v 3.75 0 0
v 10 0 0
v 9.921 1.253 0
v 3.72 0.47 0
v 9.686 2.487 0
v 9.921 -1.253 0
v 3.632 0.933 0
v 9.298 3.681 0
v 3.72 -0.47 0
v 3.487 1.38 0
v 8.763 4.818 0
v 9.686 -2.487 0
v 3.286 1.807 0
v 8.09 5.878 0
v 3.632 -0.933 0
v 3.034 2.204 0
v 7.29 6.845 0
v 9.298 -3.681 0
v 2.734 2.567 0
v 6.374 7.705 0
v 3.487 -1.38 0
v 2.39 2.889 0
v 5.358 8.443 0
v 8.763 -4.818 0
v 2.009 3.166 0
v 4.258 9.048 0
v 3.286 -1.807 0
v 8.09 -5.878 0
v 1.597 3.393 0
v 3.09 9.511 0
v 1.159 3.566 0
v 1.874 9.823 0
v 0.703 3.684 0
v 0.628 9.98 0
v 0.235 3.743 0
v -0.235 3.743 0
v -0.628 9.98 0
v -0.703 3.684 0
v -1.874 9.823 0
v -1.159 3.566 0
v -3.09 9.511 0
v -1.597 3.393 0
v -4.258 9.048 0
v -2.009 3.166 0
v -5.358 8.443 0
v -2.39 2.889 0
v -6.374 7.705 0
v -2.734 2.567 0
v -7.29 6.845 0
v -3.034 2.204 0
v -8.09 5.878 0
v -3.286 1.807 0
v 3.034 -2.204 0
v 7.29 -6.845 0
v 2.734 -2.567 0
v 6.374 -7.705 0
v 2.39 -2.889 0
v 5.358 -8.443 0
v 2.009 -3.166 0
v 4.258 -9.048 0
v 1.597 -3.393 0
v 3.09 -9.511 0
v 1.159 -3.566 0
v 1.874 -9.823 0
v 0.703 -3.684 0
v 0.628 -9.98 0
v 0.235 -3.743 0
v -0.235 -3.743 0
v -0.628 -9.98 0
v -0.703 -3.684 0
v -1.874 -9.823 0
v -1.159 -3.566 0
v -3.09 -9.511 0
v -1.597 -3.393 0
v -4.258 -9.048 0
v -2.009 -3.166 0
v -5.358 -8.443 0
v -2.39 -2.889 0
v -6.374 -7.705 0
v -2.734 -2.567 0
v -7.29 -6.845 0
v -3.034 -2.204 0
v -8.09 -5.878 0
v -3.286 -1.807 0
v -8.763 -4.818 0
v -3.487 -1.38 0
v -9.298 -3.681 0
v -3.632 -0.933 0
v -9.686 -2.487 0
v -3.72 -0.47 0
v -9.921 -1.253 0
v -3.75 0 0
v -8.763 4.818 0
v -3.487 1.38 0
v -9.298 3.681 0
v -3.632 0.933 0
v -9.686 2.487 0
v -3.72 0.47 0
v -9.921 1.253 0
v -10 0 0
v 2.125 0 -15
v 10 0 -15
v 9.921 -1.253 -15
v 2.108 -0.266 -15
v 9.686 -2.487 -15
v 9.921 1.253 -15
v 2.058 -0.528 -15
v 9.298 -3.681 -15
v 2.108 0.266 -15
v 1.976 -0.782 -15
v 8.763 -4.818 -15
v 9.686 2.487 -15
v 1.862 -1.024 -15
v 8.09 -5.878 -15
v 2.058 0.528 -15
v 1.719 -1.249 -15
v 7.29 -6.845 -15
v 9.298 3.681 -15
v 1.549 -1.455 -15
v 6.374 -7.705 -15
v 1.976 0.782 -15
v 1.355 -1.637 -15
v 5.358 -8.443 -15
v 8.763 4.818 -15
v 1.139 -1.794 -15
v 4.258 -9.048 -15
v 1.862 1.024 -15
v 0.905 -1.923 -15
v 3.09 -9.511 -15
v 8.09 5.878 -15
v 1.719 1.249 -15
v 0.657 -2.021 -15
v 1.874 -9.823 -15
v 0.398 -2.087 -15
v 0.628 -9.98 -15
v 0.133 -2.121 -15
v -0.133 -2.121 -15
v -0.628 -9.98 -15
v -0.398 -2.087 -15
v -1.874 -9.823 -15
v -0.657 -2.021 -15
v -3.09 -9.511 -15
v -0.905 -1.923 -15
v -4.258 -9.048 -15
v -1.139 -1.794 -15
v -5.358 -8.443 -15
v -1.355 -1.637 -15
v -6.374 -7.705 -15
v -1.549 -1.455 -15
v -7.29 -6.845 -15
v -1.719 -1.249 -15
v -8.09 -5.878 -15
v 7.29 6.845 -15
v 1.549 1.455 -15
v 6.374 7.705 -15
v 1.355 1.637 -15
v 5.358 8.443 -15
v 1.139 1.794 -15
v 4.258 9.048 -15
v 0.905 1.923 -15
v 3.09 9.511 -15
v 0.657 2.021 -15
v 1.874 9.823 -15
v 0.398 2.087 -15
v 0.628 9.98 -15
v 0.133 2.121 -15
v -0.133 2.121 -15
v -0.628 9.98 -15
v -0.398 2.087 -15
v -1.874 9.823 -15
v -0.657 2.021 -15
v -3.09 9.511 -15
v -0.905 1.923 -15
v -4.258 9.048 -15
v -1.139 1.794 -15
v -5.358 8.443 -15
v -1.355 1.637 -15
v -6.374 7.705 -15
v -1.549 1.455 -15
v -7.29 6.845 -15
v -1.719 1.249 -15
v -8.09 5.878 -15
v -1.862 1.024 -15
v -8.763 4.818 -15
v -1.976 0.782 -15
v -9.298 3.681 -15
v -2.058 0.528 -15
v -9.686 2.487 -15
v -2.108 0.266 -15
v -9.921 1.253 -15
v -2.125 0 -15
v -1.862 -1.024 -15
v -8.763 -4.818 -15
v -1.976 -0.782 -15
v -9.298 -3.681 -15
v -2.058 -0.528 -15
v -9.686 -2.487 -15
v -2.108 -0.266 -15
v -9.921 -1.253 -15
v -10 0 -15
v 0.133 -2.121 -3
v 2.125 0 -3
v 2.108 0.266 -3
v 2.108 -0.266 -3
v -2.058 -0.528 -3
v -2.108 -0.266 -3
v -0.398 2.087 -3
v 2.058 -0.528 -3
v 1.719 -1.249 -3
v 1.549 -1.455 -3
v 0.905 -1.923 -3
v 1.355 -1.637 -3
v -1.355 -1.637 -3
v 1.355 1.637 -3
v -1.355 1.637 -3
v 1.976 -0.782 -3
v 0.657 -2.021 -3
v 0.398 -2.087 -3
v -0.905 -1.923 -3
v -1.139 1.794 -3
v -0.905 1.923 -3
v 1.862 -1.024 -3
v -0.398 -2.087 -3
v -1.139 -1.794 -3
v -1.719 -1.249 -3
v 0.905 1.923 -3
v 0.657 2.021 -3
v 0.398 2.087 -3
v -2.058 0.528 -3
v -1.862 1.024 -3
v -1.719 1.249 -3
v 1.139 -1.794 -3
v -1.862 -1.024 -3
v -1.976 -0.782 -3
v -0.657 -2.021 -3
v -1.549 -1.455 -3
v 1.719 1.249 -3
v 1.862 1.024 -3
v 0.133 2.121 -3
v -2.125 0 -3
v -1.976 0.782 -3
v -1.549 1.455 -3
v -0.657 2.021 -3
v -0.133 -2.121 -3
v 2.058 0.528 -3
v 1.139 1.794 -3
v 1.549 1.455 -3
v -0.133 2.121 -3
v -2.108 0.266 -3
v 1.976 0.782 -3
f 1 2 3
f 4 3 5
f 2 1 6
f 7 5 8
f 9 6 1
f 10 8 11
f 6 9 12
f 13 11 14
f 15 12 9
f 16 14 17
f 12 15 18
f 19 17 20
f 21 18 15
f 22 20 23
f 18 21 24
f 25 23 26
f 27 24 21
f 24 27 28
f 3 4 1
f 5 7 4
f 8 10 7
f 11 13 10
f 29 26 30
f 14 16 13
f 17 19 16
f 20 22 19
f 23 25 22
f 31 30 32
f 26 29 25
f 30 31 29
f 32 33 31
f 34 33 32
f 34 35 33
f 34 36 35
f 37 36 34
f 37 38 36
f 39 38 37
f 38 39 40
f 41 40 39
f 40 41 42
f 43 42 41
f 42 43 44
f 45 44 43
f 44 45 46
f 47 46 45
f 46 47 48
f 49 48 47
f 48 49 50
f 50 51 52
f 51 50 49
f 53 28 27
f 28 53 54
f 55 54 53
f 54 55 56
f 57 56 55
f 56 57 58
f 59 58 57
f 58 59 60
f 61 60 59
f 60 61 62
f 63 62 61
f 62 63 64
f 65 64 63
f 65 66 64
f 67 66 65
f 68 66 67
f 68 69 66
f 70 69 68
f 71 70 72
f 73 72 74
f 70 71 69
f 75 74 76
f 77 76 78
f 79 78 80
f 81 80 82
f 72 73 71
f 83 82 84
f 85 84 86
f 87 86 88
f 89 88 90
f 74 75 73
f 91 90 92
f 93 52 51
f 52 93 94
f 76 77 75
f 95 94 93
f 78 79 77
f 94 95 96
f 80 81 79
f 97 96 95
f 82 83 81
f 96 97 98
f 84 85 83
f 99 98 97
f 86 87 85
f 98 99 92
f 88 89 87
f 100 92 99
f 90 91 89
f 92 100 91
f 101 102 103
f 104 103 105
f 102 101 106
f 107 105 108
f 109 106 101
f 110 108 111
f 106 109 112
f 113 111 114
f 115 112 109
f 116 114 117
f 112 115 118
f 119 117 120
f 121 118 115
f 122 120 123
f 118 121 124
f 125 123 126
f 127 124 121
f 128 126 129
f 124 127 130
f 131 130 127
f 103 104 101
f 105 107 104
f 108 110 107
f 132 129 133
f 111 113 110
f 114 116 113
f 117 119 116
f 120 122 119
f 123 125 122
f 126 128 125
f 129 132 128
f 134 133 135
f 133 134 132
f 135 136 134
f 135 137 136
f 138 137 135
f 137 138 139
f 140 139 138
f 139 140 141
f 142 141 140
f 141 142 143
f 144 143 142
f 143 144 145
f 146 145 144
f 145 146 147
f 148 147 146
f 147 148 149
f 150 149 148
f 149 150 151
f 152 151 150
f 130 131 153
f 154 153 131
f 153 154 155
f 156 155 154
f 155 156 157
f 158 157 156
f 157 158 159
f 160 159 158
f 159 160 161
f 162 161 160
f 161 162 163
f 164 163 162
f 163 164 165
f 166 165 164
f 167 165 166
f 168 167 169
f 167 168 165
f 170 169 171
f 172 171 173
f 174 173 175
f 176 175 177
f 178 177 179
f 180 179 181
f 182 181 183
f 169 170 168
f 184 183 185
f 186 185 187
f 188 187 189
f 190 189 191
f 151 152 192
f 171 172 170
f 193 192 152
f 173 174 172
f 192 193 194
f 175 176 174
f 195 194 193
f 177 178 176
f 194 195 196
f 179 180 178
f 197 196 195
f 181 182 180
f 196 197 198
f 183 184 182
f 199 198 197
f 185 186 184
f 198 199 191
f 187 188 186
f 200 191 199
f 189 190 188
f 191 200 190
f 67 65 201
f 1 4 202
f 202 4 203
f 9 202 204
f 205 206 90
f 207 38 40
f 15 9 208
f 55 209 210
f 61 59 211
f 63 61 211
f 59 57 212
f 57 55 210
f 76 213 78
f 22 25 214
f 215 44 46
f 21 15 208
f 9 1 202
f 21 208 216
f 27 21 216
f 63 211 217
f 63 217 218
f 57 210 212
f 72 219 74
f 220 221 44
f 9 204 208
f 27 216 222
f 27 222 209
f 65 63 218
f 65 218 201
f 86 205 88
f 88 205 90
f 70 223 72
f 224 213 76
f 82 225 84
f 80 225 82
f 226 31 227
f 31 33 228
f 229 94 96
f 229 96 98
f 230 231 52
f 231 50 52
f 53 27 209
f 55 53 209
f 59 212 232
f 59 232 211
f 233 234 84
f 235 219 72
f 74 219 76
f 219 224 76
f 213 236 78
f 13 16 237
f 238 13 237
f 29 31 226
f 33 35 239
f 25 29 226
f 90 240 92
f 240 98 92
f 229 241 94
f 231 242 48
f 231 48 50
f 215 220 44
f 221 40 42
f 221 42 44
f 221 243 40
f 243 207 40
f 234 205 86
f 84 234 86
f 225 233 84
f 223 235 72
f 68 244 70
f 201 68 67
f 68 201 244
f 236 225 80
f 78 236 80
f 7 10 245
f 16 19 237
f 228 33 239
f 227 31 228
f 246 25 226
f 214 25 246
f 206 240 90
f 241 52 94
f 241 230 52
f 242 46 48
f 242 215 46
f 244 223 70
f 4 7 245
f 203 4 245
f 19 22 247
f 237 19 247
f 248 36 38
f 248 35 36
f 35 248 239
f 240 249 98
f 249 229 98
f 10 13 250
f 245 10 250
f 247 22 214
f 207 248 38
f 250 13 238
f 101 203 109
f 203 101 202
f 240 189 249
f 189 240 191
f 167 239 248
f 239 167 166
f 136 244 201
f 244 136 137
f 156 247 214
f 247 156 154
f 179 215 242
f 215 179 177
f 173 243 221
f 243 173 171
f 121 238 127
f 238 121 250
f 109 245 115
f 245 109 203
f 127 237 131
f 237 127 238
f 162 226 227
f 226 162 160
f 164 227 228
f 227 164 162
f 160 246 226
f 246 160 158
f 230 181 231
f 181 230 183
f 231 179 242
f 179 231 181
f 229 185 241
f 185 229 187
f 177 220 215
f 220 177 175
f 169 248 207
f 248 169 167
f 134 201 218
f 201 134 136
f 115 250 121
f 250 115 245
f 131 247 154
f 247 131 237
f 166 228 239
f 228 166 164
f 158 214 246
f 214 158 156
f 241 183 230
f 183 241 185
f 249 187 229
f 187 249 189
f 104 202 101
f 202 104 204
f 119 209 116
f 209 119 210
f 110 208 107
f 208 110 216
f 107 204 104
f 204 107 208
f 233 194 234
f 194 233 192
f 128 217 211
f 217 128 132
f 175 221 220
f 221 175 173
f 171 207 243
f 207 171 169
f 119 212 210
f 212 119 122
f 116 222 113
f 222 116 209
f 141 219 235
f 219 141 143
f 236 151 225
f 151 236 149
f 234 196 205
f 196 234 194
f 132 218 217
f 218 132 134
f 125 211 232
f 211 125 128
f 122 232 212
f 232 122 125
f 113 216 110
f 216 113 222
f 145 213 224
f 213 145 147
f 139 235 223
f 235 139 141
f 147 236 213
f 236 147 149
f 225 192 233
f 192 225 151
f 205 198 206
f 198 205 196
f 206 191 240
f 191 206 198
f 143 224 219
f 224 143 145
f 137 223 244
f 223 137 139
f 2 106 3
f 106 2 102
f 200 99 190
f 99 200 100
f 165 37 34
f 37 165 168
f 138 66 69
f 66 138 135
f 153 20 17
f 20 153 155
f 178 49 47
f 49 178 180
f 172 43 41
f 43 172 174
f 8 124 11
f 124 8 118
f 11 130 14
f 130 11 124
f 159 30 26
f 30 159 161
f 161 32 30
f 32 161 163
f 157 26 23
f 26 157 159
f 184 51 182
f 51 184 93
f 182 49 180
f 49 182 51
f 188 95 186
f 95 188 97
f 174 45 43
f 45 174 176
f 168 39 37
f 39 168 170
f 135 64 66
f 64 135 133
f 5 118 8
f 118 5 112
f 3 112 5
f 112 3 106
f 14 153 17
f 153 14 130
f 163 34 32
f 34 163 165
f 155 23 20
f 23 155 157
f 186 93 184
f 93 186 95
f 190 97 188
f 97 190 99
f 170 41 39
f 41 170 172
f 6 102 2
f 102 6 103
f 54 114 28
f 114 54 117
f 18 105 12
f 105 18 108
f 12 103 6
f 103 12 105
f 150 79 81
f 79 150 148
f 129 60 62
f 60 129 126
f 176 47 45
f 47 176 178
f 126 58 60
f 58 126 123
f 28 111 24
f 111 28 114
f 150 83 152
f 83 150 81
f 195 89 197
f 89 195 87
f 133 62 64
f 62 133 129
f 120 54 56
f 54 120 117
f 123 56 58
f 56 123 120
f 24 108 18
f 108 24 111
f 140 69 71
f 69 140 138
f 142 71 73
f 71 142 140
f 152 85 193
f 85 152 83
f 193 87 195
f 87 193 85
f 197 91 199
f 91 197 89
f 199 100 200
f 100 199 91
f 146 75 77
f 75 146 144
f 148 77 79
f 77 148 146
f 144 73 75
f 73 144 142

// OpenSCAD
$fn = 50;


difference() {
	union() {
		translate(v = [0, 0, -15.0000000000]) {
			cylinder(h = 15, r = 10.0000000000);
		}
	}
	union() {
		translate(v = [0, 0, 0]) {
			rotate(a = [0, 0, 0]) {
				difference() {
					union() {
						#translate(v = [0, 0, -15.0000000000]) {
							cylinder(h = 15, r = 2.0000000000);
						}
						#translate(v = [0, 0, -3]) {
							cylinder(h = 3, r = 10.0000000000, r1 = 2.1250000000, r2 = 3.7500000000);
						}
						#translate(v = [0, 0, -15.0000000000]) {
							cylinder(h = 15, r = 2.1250000000);
						}
						#translate(v = [0, 0, -15.0000000000]) {
							cylinder(h = 15, r = 2.0000000000);
						}
					}
					union();
				}
			}
		}
	}
}
